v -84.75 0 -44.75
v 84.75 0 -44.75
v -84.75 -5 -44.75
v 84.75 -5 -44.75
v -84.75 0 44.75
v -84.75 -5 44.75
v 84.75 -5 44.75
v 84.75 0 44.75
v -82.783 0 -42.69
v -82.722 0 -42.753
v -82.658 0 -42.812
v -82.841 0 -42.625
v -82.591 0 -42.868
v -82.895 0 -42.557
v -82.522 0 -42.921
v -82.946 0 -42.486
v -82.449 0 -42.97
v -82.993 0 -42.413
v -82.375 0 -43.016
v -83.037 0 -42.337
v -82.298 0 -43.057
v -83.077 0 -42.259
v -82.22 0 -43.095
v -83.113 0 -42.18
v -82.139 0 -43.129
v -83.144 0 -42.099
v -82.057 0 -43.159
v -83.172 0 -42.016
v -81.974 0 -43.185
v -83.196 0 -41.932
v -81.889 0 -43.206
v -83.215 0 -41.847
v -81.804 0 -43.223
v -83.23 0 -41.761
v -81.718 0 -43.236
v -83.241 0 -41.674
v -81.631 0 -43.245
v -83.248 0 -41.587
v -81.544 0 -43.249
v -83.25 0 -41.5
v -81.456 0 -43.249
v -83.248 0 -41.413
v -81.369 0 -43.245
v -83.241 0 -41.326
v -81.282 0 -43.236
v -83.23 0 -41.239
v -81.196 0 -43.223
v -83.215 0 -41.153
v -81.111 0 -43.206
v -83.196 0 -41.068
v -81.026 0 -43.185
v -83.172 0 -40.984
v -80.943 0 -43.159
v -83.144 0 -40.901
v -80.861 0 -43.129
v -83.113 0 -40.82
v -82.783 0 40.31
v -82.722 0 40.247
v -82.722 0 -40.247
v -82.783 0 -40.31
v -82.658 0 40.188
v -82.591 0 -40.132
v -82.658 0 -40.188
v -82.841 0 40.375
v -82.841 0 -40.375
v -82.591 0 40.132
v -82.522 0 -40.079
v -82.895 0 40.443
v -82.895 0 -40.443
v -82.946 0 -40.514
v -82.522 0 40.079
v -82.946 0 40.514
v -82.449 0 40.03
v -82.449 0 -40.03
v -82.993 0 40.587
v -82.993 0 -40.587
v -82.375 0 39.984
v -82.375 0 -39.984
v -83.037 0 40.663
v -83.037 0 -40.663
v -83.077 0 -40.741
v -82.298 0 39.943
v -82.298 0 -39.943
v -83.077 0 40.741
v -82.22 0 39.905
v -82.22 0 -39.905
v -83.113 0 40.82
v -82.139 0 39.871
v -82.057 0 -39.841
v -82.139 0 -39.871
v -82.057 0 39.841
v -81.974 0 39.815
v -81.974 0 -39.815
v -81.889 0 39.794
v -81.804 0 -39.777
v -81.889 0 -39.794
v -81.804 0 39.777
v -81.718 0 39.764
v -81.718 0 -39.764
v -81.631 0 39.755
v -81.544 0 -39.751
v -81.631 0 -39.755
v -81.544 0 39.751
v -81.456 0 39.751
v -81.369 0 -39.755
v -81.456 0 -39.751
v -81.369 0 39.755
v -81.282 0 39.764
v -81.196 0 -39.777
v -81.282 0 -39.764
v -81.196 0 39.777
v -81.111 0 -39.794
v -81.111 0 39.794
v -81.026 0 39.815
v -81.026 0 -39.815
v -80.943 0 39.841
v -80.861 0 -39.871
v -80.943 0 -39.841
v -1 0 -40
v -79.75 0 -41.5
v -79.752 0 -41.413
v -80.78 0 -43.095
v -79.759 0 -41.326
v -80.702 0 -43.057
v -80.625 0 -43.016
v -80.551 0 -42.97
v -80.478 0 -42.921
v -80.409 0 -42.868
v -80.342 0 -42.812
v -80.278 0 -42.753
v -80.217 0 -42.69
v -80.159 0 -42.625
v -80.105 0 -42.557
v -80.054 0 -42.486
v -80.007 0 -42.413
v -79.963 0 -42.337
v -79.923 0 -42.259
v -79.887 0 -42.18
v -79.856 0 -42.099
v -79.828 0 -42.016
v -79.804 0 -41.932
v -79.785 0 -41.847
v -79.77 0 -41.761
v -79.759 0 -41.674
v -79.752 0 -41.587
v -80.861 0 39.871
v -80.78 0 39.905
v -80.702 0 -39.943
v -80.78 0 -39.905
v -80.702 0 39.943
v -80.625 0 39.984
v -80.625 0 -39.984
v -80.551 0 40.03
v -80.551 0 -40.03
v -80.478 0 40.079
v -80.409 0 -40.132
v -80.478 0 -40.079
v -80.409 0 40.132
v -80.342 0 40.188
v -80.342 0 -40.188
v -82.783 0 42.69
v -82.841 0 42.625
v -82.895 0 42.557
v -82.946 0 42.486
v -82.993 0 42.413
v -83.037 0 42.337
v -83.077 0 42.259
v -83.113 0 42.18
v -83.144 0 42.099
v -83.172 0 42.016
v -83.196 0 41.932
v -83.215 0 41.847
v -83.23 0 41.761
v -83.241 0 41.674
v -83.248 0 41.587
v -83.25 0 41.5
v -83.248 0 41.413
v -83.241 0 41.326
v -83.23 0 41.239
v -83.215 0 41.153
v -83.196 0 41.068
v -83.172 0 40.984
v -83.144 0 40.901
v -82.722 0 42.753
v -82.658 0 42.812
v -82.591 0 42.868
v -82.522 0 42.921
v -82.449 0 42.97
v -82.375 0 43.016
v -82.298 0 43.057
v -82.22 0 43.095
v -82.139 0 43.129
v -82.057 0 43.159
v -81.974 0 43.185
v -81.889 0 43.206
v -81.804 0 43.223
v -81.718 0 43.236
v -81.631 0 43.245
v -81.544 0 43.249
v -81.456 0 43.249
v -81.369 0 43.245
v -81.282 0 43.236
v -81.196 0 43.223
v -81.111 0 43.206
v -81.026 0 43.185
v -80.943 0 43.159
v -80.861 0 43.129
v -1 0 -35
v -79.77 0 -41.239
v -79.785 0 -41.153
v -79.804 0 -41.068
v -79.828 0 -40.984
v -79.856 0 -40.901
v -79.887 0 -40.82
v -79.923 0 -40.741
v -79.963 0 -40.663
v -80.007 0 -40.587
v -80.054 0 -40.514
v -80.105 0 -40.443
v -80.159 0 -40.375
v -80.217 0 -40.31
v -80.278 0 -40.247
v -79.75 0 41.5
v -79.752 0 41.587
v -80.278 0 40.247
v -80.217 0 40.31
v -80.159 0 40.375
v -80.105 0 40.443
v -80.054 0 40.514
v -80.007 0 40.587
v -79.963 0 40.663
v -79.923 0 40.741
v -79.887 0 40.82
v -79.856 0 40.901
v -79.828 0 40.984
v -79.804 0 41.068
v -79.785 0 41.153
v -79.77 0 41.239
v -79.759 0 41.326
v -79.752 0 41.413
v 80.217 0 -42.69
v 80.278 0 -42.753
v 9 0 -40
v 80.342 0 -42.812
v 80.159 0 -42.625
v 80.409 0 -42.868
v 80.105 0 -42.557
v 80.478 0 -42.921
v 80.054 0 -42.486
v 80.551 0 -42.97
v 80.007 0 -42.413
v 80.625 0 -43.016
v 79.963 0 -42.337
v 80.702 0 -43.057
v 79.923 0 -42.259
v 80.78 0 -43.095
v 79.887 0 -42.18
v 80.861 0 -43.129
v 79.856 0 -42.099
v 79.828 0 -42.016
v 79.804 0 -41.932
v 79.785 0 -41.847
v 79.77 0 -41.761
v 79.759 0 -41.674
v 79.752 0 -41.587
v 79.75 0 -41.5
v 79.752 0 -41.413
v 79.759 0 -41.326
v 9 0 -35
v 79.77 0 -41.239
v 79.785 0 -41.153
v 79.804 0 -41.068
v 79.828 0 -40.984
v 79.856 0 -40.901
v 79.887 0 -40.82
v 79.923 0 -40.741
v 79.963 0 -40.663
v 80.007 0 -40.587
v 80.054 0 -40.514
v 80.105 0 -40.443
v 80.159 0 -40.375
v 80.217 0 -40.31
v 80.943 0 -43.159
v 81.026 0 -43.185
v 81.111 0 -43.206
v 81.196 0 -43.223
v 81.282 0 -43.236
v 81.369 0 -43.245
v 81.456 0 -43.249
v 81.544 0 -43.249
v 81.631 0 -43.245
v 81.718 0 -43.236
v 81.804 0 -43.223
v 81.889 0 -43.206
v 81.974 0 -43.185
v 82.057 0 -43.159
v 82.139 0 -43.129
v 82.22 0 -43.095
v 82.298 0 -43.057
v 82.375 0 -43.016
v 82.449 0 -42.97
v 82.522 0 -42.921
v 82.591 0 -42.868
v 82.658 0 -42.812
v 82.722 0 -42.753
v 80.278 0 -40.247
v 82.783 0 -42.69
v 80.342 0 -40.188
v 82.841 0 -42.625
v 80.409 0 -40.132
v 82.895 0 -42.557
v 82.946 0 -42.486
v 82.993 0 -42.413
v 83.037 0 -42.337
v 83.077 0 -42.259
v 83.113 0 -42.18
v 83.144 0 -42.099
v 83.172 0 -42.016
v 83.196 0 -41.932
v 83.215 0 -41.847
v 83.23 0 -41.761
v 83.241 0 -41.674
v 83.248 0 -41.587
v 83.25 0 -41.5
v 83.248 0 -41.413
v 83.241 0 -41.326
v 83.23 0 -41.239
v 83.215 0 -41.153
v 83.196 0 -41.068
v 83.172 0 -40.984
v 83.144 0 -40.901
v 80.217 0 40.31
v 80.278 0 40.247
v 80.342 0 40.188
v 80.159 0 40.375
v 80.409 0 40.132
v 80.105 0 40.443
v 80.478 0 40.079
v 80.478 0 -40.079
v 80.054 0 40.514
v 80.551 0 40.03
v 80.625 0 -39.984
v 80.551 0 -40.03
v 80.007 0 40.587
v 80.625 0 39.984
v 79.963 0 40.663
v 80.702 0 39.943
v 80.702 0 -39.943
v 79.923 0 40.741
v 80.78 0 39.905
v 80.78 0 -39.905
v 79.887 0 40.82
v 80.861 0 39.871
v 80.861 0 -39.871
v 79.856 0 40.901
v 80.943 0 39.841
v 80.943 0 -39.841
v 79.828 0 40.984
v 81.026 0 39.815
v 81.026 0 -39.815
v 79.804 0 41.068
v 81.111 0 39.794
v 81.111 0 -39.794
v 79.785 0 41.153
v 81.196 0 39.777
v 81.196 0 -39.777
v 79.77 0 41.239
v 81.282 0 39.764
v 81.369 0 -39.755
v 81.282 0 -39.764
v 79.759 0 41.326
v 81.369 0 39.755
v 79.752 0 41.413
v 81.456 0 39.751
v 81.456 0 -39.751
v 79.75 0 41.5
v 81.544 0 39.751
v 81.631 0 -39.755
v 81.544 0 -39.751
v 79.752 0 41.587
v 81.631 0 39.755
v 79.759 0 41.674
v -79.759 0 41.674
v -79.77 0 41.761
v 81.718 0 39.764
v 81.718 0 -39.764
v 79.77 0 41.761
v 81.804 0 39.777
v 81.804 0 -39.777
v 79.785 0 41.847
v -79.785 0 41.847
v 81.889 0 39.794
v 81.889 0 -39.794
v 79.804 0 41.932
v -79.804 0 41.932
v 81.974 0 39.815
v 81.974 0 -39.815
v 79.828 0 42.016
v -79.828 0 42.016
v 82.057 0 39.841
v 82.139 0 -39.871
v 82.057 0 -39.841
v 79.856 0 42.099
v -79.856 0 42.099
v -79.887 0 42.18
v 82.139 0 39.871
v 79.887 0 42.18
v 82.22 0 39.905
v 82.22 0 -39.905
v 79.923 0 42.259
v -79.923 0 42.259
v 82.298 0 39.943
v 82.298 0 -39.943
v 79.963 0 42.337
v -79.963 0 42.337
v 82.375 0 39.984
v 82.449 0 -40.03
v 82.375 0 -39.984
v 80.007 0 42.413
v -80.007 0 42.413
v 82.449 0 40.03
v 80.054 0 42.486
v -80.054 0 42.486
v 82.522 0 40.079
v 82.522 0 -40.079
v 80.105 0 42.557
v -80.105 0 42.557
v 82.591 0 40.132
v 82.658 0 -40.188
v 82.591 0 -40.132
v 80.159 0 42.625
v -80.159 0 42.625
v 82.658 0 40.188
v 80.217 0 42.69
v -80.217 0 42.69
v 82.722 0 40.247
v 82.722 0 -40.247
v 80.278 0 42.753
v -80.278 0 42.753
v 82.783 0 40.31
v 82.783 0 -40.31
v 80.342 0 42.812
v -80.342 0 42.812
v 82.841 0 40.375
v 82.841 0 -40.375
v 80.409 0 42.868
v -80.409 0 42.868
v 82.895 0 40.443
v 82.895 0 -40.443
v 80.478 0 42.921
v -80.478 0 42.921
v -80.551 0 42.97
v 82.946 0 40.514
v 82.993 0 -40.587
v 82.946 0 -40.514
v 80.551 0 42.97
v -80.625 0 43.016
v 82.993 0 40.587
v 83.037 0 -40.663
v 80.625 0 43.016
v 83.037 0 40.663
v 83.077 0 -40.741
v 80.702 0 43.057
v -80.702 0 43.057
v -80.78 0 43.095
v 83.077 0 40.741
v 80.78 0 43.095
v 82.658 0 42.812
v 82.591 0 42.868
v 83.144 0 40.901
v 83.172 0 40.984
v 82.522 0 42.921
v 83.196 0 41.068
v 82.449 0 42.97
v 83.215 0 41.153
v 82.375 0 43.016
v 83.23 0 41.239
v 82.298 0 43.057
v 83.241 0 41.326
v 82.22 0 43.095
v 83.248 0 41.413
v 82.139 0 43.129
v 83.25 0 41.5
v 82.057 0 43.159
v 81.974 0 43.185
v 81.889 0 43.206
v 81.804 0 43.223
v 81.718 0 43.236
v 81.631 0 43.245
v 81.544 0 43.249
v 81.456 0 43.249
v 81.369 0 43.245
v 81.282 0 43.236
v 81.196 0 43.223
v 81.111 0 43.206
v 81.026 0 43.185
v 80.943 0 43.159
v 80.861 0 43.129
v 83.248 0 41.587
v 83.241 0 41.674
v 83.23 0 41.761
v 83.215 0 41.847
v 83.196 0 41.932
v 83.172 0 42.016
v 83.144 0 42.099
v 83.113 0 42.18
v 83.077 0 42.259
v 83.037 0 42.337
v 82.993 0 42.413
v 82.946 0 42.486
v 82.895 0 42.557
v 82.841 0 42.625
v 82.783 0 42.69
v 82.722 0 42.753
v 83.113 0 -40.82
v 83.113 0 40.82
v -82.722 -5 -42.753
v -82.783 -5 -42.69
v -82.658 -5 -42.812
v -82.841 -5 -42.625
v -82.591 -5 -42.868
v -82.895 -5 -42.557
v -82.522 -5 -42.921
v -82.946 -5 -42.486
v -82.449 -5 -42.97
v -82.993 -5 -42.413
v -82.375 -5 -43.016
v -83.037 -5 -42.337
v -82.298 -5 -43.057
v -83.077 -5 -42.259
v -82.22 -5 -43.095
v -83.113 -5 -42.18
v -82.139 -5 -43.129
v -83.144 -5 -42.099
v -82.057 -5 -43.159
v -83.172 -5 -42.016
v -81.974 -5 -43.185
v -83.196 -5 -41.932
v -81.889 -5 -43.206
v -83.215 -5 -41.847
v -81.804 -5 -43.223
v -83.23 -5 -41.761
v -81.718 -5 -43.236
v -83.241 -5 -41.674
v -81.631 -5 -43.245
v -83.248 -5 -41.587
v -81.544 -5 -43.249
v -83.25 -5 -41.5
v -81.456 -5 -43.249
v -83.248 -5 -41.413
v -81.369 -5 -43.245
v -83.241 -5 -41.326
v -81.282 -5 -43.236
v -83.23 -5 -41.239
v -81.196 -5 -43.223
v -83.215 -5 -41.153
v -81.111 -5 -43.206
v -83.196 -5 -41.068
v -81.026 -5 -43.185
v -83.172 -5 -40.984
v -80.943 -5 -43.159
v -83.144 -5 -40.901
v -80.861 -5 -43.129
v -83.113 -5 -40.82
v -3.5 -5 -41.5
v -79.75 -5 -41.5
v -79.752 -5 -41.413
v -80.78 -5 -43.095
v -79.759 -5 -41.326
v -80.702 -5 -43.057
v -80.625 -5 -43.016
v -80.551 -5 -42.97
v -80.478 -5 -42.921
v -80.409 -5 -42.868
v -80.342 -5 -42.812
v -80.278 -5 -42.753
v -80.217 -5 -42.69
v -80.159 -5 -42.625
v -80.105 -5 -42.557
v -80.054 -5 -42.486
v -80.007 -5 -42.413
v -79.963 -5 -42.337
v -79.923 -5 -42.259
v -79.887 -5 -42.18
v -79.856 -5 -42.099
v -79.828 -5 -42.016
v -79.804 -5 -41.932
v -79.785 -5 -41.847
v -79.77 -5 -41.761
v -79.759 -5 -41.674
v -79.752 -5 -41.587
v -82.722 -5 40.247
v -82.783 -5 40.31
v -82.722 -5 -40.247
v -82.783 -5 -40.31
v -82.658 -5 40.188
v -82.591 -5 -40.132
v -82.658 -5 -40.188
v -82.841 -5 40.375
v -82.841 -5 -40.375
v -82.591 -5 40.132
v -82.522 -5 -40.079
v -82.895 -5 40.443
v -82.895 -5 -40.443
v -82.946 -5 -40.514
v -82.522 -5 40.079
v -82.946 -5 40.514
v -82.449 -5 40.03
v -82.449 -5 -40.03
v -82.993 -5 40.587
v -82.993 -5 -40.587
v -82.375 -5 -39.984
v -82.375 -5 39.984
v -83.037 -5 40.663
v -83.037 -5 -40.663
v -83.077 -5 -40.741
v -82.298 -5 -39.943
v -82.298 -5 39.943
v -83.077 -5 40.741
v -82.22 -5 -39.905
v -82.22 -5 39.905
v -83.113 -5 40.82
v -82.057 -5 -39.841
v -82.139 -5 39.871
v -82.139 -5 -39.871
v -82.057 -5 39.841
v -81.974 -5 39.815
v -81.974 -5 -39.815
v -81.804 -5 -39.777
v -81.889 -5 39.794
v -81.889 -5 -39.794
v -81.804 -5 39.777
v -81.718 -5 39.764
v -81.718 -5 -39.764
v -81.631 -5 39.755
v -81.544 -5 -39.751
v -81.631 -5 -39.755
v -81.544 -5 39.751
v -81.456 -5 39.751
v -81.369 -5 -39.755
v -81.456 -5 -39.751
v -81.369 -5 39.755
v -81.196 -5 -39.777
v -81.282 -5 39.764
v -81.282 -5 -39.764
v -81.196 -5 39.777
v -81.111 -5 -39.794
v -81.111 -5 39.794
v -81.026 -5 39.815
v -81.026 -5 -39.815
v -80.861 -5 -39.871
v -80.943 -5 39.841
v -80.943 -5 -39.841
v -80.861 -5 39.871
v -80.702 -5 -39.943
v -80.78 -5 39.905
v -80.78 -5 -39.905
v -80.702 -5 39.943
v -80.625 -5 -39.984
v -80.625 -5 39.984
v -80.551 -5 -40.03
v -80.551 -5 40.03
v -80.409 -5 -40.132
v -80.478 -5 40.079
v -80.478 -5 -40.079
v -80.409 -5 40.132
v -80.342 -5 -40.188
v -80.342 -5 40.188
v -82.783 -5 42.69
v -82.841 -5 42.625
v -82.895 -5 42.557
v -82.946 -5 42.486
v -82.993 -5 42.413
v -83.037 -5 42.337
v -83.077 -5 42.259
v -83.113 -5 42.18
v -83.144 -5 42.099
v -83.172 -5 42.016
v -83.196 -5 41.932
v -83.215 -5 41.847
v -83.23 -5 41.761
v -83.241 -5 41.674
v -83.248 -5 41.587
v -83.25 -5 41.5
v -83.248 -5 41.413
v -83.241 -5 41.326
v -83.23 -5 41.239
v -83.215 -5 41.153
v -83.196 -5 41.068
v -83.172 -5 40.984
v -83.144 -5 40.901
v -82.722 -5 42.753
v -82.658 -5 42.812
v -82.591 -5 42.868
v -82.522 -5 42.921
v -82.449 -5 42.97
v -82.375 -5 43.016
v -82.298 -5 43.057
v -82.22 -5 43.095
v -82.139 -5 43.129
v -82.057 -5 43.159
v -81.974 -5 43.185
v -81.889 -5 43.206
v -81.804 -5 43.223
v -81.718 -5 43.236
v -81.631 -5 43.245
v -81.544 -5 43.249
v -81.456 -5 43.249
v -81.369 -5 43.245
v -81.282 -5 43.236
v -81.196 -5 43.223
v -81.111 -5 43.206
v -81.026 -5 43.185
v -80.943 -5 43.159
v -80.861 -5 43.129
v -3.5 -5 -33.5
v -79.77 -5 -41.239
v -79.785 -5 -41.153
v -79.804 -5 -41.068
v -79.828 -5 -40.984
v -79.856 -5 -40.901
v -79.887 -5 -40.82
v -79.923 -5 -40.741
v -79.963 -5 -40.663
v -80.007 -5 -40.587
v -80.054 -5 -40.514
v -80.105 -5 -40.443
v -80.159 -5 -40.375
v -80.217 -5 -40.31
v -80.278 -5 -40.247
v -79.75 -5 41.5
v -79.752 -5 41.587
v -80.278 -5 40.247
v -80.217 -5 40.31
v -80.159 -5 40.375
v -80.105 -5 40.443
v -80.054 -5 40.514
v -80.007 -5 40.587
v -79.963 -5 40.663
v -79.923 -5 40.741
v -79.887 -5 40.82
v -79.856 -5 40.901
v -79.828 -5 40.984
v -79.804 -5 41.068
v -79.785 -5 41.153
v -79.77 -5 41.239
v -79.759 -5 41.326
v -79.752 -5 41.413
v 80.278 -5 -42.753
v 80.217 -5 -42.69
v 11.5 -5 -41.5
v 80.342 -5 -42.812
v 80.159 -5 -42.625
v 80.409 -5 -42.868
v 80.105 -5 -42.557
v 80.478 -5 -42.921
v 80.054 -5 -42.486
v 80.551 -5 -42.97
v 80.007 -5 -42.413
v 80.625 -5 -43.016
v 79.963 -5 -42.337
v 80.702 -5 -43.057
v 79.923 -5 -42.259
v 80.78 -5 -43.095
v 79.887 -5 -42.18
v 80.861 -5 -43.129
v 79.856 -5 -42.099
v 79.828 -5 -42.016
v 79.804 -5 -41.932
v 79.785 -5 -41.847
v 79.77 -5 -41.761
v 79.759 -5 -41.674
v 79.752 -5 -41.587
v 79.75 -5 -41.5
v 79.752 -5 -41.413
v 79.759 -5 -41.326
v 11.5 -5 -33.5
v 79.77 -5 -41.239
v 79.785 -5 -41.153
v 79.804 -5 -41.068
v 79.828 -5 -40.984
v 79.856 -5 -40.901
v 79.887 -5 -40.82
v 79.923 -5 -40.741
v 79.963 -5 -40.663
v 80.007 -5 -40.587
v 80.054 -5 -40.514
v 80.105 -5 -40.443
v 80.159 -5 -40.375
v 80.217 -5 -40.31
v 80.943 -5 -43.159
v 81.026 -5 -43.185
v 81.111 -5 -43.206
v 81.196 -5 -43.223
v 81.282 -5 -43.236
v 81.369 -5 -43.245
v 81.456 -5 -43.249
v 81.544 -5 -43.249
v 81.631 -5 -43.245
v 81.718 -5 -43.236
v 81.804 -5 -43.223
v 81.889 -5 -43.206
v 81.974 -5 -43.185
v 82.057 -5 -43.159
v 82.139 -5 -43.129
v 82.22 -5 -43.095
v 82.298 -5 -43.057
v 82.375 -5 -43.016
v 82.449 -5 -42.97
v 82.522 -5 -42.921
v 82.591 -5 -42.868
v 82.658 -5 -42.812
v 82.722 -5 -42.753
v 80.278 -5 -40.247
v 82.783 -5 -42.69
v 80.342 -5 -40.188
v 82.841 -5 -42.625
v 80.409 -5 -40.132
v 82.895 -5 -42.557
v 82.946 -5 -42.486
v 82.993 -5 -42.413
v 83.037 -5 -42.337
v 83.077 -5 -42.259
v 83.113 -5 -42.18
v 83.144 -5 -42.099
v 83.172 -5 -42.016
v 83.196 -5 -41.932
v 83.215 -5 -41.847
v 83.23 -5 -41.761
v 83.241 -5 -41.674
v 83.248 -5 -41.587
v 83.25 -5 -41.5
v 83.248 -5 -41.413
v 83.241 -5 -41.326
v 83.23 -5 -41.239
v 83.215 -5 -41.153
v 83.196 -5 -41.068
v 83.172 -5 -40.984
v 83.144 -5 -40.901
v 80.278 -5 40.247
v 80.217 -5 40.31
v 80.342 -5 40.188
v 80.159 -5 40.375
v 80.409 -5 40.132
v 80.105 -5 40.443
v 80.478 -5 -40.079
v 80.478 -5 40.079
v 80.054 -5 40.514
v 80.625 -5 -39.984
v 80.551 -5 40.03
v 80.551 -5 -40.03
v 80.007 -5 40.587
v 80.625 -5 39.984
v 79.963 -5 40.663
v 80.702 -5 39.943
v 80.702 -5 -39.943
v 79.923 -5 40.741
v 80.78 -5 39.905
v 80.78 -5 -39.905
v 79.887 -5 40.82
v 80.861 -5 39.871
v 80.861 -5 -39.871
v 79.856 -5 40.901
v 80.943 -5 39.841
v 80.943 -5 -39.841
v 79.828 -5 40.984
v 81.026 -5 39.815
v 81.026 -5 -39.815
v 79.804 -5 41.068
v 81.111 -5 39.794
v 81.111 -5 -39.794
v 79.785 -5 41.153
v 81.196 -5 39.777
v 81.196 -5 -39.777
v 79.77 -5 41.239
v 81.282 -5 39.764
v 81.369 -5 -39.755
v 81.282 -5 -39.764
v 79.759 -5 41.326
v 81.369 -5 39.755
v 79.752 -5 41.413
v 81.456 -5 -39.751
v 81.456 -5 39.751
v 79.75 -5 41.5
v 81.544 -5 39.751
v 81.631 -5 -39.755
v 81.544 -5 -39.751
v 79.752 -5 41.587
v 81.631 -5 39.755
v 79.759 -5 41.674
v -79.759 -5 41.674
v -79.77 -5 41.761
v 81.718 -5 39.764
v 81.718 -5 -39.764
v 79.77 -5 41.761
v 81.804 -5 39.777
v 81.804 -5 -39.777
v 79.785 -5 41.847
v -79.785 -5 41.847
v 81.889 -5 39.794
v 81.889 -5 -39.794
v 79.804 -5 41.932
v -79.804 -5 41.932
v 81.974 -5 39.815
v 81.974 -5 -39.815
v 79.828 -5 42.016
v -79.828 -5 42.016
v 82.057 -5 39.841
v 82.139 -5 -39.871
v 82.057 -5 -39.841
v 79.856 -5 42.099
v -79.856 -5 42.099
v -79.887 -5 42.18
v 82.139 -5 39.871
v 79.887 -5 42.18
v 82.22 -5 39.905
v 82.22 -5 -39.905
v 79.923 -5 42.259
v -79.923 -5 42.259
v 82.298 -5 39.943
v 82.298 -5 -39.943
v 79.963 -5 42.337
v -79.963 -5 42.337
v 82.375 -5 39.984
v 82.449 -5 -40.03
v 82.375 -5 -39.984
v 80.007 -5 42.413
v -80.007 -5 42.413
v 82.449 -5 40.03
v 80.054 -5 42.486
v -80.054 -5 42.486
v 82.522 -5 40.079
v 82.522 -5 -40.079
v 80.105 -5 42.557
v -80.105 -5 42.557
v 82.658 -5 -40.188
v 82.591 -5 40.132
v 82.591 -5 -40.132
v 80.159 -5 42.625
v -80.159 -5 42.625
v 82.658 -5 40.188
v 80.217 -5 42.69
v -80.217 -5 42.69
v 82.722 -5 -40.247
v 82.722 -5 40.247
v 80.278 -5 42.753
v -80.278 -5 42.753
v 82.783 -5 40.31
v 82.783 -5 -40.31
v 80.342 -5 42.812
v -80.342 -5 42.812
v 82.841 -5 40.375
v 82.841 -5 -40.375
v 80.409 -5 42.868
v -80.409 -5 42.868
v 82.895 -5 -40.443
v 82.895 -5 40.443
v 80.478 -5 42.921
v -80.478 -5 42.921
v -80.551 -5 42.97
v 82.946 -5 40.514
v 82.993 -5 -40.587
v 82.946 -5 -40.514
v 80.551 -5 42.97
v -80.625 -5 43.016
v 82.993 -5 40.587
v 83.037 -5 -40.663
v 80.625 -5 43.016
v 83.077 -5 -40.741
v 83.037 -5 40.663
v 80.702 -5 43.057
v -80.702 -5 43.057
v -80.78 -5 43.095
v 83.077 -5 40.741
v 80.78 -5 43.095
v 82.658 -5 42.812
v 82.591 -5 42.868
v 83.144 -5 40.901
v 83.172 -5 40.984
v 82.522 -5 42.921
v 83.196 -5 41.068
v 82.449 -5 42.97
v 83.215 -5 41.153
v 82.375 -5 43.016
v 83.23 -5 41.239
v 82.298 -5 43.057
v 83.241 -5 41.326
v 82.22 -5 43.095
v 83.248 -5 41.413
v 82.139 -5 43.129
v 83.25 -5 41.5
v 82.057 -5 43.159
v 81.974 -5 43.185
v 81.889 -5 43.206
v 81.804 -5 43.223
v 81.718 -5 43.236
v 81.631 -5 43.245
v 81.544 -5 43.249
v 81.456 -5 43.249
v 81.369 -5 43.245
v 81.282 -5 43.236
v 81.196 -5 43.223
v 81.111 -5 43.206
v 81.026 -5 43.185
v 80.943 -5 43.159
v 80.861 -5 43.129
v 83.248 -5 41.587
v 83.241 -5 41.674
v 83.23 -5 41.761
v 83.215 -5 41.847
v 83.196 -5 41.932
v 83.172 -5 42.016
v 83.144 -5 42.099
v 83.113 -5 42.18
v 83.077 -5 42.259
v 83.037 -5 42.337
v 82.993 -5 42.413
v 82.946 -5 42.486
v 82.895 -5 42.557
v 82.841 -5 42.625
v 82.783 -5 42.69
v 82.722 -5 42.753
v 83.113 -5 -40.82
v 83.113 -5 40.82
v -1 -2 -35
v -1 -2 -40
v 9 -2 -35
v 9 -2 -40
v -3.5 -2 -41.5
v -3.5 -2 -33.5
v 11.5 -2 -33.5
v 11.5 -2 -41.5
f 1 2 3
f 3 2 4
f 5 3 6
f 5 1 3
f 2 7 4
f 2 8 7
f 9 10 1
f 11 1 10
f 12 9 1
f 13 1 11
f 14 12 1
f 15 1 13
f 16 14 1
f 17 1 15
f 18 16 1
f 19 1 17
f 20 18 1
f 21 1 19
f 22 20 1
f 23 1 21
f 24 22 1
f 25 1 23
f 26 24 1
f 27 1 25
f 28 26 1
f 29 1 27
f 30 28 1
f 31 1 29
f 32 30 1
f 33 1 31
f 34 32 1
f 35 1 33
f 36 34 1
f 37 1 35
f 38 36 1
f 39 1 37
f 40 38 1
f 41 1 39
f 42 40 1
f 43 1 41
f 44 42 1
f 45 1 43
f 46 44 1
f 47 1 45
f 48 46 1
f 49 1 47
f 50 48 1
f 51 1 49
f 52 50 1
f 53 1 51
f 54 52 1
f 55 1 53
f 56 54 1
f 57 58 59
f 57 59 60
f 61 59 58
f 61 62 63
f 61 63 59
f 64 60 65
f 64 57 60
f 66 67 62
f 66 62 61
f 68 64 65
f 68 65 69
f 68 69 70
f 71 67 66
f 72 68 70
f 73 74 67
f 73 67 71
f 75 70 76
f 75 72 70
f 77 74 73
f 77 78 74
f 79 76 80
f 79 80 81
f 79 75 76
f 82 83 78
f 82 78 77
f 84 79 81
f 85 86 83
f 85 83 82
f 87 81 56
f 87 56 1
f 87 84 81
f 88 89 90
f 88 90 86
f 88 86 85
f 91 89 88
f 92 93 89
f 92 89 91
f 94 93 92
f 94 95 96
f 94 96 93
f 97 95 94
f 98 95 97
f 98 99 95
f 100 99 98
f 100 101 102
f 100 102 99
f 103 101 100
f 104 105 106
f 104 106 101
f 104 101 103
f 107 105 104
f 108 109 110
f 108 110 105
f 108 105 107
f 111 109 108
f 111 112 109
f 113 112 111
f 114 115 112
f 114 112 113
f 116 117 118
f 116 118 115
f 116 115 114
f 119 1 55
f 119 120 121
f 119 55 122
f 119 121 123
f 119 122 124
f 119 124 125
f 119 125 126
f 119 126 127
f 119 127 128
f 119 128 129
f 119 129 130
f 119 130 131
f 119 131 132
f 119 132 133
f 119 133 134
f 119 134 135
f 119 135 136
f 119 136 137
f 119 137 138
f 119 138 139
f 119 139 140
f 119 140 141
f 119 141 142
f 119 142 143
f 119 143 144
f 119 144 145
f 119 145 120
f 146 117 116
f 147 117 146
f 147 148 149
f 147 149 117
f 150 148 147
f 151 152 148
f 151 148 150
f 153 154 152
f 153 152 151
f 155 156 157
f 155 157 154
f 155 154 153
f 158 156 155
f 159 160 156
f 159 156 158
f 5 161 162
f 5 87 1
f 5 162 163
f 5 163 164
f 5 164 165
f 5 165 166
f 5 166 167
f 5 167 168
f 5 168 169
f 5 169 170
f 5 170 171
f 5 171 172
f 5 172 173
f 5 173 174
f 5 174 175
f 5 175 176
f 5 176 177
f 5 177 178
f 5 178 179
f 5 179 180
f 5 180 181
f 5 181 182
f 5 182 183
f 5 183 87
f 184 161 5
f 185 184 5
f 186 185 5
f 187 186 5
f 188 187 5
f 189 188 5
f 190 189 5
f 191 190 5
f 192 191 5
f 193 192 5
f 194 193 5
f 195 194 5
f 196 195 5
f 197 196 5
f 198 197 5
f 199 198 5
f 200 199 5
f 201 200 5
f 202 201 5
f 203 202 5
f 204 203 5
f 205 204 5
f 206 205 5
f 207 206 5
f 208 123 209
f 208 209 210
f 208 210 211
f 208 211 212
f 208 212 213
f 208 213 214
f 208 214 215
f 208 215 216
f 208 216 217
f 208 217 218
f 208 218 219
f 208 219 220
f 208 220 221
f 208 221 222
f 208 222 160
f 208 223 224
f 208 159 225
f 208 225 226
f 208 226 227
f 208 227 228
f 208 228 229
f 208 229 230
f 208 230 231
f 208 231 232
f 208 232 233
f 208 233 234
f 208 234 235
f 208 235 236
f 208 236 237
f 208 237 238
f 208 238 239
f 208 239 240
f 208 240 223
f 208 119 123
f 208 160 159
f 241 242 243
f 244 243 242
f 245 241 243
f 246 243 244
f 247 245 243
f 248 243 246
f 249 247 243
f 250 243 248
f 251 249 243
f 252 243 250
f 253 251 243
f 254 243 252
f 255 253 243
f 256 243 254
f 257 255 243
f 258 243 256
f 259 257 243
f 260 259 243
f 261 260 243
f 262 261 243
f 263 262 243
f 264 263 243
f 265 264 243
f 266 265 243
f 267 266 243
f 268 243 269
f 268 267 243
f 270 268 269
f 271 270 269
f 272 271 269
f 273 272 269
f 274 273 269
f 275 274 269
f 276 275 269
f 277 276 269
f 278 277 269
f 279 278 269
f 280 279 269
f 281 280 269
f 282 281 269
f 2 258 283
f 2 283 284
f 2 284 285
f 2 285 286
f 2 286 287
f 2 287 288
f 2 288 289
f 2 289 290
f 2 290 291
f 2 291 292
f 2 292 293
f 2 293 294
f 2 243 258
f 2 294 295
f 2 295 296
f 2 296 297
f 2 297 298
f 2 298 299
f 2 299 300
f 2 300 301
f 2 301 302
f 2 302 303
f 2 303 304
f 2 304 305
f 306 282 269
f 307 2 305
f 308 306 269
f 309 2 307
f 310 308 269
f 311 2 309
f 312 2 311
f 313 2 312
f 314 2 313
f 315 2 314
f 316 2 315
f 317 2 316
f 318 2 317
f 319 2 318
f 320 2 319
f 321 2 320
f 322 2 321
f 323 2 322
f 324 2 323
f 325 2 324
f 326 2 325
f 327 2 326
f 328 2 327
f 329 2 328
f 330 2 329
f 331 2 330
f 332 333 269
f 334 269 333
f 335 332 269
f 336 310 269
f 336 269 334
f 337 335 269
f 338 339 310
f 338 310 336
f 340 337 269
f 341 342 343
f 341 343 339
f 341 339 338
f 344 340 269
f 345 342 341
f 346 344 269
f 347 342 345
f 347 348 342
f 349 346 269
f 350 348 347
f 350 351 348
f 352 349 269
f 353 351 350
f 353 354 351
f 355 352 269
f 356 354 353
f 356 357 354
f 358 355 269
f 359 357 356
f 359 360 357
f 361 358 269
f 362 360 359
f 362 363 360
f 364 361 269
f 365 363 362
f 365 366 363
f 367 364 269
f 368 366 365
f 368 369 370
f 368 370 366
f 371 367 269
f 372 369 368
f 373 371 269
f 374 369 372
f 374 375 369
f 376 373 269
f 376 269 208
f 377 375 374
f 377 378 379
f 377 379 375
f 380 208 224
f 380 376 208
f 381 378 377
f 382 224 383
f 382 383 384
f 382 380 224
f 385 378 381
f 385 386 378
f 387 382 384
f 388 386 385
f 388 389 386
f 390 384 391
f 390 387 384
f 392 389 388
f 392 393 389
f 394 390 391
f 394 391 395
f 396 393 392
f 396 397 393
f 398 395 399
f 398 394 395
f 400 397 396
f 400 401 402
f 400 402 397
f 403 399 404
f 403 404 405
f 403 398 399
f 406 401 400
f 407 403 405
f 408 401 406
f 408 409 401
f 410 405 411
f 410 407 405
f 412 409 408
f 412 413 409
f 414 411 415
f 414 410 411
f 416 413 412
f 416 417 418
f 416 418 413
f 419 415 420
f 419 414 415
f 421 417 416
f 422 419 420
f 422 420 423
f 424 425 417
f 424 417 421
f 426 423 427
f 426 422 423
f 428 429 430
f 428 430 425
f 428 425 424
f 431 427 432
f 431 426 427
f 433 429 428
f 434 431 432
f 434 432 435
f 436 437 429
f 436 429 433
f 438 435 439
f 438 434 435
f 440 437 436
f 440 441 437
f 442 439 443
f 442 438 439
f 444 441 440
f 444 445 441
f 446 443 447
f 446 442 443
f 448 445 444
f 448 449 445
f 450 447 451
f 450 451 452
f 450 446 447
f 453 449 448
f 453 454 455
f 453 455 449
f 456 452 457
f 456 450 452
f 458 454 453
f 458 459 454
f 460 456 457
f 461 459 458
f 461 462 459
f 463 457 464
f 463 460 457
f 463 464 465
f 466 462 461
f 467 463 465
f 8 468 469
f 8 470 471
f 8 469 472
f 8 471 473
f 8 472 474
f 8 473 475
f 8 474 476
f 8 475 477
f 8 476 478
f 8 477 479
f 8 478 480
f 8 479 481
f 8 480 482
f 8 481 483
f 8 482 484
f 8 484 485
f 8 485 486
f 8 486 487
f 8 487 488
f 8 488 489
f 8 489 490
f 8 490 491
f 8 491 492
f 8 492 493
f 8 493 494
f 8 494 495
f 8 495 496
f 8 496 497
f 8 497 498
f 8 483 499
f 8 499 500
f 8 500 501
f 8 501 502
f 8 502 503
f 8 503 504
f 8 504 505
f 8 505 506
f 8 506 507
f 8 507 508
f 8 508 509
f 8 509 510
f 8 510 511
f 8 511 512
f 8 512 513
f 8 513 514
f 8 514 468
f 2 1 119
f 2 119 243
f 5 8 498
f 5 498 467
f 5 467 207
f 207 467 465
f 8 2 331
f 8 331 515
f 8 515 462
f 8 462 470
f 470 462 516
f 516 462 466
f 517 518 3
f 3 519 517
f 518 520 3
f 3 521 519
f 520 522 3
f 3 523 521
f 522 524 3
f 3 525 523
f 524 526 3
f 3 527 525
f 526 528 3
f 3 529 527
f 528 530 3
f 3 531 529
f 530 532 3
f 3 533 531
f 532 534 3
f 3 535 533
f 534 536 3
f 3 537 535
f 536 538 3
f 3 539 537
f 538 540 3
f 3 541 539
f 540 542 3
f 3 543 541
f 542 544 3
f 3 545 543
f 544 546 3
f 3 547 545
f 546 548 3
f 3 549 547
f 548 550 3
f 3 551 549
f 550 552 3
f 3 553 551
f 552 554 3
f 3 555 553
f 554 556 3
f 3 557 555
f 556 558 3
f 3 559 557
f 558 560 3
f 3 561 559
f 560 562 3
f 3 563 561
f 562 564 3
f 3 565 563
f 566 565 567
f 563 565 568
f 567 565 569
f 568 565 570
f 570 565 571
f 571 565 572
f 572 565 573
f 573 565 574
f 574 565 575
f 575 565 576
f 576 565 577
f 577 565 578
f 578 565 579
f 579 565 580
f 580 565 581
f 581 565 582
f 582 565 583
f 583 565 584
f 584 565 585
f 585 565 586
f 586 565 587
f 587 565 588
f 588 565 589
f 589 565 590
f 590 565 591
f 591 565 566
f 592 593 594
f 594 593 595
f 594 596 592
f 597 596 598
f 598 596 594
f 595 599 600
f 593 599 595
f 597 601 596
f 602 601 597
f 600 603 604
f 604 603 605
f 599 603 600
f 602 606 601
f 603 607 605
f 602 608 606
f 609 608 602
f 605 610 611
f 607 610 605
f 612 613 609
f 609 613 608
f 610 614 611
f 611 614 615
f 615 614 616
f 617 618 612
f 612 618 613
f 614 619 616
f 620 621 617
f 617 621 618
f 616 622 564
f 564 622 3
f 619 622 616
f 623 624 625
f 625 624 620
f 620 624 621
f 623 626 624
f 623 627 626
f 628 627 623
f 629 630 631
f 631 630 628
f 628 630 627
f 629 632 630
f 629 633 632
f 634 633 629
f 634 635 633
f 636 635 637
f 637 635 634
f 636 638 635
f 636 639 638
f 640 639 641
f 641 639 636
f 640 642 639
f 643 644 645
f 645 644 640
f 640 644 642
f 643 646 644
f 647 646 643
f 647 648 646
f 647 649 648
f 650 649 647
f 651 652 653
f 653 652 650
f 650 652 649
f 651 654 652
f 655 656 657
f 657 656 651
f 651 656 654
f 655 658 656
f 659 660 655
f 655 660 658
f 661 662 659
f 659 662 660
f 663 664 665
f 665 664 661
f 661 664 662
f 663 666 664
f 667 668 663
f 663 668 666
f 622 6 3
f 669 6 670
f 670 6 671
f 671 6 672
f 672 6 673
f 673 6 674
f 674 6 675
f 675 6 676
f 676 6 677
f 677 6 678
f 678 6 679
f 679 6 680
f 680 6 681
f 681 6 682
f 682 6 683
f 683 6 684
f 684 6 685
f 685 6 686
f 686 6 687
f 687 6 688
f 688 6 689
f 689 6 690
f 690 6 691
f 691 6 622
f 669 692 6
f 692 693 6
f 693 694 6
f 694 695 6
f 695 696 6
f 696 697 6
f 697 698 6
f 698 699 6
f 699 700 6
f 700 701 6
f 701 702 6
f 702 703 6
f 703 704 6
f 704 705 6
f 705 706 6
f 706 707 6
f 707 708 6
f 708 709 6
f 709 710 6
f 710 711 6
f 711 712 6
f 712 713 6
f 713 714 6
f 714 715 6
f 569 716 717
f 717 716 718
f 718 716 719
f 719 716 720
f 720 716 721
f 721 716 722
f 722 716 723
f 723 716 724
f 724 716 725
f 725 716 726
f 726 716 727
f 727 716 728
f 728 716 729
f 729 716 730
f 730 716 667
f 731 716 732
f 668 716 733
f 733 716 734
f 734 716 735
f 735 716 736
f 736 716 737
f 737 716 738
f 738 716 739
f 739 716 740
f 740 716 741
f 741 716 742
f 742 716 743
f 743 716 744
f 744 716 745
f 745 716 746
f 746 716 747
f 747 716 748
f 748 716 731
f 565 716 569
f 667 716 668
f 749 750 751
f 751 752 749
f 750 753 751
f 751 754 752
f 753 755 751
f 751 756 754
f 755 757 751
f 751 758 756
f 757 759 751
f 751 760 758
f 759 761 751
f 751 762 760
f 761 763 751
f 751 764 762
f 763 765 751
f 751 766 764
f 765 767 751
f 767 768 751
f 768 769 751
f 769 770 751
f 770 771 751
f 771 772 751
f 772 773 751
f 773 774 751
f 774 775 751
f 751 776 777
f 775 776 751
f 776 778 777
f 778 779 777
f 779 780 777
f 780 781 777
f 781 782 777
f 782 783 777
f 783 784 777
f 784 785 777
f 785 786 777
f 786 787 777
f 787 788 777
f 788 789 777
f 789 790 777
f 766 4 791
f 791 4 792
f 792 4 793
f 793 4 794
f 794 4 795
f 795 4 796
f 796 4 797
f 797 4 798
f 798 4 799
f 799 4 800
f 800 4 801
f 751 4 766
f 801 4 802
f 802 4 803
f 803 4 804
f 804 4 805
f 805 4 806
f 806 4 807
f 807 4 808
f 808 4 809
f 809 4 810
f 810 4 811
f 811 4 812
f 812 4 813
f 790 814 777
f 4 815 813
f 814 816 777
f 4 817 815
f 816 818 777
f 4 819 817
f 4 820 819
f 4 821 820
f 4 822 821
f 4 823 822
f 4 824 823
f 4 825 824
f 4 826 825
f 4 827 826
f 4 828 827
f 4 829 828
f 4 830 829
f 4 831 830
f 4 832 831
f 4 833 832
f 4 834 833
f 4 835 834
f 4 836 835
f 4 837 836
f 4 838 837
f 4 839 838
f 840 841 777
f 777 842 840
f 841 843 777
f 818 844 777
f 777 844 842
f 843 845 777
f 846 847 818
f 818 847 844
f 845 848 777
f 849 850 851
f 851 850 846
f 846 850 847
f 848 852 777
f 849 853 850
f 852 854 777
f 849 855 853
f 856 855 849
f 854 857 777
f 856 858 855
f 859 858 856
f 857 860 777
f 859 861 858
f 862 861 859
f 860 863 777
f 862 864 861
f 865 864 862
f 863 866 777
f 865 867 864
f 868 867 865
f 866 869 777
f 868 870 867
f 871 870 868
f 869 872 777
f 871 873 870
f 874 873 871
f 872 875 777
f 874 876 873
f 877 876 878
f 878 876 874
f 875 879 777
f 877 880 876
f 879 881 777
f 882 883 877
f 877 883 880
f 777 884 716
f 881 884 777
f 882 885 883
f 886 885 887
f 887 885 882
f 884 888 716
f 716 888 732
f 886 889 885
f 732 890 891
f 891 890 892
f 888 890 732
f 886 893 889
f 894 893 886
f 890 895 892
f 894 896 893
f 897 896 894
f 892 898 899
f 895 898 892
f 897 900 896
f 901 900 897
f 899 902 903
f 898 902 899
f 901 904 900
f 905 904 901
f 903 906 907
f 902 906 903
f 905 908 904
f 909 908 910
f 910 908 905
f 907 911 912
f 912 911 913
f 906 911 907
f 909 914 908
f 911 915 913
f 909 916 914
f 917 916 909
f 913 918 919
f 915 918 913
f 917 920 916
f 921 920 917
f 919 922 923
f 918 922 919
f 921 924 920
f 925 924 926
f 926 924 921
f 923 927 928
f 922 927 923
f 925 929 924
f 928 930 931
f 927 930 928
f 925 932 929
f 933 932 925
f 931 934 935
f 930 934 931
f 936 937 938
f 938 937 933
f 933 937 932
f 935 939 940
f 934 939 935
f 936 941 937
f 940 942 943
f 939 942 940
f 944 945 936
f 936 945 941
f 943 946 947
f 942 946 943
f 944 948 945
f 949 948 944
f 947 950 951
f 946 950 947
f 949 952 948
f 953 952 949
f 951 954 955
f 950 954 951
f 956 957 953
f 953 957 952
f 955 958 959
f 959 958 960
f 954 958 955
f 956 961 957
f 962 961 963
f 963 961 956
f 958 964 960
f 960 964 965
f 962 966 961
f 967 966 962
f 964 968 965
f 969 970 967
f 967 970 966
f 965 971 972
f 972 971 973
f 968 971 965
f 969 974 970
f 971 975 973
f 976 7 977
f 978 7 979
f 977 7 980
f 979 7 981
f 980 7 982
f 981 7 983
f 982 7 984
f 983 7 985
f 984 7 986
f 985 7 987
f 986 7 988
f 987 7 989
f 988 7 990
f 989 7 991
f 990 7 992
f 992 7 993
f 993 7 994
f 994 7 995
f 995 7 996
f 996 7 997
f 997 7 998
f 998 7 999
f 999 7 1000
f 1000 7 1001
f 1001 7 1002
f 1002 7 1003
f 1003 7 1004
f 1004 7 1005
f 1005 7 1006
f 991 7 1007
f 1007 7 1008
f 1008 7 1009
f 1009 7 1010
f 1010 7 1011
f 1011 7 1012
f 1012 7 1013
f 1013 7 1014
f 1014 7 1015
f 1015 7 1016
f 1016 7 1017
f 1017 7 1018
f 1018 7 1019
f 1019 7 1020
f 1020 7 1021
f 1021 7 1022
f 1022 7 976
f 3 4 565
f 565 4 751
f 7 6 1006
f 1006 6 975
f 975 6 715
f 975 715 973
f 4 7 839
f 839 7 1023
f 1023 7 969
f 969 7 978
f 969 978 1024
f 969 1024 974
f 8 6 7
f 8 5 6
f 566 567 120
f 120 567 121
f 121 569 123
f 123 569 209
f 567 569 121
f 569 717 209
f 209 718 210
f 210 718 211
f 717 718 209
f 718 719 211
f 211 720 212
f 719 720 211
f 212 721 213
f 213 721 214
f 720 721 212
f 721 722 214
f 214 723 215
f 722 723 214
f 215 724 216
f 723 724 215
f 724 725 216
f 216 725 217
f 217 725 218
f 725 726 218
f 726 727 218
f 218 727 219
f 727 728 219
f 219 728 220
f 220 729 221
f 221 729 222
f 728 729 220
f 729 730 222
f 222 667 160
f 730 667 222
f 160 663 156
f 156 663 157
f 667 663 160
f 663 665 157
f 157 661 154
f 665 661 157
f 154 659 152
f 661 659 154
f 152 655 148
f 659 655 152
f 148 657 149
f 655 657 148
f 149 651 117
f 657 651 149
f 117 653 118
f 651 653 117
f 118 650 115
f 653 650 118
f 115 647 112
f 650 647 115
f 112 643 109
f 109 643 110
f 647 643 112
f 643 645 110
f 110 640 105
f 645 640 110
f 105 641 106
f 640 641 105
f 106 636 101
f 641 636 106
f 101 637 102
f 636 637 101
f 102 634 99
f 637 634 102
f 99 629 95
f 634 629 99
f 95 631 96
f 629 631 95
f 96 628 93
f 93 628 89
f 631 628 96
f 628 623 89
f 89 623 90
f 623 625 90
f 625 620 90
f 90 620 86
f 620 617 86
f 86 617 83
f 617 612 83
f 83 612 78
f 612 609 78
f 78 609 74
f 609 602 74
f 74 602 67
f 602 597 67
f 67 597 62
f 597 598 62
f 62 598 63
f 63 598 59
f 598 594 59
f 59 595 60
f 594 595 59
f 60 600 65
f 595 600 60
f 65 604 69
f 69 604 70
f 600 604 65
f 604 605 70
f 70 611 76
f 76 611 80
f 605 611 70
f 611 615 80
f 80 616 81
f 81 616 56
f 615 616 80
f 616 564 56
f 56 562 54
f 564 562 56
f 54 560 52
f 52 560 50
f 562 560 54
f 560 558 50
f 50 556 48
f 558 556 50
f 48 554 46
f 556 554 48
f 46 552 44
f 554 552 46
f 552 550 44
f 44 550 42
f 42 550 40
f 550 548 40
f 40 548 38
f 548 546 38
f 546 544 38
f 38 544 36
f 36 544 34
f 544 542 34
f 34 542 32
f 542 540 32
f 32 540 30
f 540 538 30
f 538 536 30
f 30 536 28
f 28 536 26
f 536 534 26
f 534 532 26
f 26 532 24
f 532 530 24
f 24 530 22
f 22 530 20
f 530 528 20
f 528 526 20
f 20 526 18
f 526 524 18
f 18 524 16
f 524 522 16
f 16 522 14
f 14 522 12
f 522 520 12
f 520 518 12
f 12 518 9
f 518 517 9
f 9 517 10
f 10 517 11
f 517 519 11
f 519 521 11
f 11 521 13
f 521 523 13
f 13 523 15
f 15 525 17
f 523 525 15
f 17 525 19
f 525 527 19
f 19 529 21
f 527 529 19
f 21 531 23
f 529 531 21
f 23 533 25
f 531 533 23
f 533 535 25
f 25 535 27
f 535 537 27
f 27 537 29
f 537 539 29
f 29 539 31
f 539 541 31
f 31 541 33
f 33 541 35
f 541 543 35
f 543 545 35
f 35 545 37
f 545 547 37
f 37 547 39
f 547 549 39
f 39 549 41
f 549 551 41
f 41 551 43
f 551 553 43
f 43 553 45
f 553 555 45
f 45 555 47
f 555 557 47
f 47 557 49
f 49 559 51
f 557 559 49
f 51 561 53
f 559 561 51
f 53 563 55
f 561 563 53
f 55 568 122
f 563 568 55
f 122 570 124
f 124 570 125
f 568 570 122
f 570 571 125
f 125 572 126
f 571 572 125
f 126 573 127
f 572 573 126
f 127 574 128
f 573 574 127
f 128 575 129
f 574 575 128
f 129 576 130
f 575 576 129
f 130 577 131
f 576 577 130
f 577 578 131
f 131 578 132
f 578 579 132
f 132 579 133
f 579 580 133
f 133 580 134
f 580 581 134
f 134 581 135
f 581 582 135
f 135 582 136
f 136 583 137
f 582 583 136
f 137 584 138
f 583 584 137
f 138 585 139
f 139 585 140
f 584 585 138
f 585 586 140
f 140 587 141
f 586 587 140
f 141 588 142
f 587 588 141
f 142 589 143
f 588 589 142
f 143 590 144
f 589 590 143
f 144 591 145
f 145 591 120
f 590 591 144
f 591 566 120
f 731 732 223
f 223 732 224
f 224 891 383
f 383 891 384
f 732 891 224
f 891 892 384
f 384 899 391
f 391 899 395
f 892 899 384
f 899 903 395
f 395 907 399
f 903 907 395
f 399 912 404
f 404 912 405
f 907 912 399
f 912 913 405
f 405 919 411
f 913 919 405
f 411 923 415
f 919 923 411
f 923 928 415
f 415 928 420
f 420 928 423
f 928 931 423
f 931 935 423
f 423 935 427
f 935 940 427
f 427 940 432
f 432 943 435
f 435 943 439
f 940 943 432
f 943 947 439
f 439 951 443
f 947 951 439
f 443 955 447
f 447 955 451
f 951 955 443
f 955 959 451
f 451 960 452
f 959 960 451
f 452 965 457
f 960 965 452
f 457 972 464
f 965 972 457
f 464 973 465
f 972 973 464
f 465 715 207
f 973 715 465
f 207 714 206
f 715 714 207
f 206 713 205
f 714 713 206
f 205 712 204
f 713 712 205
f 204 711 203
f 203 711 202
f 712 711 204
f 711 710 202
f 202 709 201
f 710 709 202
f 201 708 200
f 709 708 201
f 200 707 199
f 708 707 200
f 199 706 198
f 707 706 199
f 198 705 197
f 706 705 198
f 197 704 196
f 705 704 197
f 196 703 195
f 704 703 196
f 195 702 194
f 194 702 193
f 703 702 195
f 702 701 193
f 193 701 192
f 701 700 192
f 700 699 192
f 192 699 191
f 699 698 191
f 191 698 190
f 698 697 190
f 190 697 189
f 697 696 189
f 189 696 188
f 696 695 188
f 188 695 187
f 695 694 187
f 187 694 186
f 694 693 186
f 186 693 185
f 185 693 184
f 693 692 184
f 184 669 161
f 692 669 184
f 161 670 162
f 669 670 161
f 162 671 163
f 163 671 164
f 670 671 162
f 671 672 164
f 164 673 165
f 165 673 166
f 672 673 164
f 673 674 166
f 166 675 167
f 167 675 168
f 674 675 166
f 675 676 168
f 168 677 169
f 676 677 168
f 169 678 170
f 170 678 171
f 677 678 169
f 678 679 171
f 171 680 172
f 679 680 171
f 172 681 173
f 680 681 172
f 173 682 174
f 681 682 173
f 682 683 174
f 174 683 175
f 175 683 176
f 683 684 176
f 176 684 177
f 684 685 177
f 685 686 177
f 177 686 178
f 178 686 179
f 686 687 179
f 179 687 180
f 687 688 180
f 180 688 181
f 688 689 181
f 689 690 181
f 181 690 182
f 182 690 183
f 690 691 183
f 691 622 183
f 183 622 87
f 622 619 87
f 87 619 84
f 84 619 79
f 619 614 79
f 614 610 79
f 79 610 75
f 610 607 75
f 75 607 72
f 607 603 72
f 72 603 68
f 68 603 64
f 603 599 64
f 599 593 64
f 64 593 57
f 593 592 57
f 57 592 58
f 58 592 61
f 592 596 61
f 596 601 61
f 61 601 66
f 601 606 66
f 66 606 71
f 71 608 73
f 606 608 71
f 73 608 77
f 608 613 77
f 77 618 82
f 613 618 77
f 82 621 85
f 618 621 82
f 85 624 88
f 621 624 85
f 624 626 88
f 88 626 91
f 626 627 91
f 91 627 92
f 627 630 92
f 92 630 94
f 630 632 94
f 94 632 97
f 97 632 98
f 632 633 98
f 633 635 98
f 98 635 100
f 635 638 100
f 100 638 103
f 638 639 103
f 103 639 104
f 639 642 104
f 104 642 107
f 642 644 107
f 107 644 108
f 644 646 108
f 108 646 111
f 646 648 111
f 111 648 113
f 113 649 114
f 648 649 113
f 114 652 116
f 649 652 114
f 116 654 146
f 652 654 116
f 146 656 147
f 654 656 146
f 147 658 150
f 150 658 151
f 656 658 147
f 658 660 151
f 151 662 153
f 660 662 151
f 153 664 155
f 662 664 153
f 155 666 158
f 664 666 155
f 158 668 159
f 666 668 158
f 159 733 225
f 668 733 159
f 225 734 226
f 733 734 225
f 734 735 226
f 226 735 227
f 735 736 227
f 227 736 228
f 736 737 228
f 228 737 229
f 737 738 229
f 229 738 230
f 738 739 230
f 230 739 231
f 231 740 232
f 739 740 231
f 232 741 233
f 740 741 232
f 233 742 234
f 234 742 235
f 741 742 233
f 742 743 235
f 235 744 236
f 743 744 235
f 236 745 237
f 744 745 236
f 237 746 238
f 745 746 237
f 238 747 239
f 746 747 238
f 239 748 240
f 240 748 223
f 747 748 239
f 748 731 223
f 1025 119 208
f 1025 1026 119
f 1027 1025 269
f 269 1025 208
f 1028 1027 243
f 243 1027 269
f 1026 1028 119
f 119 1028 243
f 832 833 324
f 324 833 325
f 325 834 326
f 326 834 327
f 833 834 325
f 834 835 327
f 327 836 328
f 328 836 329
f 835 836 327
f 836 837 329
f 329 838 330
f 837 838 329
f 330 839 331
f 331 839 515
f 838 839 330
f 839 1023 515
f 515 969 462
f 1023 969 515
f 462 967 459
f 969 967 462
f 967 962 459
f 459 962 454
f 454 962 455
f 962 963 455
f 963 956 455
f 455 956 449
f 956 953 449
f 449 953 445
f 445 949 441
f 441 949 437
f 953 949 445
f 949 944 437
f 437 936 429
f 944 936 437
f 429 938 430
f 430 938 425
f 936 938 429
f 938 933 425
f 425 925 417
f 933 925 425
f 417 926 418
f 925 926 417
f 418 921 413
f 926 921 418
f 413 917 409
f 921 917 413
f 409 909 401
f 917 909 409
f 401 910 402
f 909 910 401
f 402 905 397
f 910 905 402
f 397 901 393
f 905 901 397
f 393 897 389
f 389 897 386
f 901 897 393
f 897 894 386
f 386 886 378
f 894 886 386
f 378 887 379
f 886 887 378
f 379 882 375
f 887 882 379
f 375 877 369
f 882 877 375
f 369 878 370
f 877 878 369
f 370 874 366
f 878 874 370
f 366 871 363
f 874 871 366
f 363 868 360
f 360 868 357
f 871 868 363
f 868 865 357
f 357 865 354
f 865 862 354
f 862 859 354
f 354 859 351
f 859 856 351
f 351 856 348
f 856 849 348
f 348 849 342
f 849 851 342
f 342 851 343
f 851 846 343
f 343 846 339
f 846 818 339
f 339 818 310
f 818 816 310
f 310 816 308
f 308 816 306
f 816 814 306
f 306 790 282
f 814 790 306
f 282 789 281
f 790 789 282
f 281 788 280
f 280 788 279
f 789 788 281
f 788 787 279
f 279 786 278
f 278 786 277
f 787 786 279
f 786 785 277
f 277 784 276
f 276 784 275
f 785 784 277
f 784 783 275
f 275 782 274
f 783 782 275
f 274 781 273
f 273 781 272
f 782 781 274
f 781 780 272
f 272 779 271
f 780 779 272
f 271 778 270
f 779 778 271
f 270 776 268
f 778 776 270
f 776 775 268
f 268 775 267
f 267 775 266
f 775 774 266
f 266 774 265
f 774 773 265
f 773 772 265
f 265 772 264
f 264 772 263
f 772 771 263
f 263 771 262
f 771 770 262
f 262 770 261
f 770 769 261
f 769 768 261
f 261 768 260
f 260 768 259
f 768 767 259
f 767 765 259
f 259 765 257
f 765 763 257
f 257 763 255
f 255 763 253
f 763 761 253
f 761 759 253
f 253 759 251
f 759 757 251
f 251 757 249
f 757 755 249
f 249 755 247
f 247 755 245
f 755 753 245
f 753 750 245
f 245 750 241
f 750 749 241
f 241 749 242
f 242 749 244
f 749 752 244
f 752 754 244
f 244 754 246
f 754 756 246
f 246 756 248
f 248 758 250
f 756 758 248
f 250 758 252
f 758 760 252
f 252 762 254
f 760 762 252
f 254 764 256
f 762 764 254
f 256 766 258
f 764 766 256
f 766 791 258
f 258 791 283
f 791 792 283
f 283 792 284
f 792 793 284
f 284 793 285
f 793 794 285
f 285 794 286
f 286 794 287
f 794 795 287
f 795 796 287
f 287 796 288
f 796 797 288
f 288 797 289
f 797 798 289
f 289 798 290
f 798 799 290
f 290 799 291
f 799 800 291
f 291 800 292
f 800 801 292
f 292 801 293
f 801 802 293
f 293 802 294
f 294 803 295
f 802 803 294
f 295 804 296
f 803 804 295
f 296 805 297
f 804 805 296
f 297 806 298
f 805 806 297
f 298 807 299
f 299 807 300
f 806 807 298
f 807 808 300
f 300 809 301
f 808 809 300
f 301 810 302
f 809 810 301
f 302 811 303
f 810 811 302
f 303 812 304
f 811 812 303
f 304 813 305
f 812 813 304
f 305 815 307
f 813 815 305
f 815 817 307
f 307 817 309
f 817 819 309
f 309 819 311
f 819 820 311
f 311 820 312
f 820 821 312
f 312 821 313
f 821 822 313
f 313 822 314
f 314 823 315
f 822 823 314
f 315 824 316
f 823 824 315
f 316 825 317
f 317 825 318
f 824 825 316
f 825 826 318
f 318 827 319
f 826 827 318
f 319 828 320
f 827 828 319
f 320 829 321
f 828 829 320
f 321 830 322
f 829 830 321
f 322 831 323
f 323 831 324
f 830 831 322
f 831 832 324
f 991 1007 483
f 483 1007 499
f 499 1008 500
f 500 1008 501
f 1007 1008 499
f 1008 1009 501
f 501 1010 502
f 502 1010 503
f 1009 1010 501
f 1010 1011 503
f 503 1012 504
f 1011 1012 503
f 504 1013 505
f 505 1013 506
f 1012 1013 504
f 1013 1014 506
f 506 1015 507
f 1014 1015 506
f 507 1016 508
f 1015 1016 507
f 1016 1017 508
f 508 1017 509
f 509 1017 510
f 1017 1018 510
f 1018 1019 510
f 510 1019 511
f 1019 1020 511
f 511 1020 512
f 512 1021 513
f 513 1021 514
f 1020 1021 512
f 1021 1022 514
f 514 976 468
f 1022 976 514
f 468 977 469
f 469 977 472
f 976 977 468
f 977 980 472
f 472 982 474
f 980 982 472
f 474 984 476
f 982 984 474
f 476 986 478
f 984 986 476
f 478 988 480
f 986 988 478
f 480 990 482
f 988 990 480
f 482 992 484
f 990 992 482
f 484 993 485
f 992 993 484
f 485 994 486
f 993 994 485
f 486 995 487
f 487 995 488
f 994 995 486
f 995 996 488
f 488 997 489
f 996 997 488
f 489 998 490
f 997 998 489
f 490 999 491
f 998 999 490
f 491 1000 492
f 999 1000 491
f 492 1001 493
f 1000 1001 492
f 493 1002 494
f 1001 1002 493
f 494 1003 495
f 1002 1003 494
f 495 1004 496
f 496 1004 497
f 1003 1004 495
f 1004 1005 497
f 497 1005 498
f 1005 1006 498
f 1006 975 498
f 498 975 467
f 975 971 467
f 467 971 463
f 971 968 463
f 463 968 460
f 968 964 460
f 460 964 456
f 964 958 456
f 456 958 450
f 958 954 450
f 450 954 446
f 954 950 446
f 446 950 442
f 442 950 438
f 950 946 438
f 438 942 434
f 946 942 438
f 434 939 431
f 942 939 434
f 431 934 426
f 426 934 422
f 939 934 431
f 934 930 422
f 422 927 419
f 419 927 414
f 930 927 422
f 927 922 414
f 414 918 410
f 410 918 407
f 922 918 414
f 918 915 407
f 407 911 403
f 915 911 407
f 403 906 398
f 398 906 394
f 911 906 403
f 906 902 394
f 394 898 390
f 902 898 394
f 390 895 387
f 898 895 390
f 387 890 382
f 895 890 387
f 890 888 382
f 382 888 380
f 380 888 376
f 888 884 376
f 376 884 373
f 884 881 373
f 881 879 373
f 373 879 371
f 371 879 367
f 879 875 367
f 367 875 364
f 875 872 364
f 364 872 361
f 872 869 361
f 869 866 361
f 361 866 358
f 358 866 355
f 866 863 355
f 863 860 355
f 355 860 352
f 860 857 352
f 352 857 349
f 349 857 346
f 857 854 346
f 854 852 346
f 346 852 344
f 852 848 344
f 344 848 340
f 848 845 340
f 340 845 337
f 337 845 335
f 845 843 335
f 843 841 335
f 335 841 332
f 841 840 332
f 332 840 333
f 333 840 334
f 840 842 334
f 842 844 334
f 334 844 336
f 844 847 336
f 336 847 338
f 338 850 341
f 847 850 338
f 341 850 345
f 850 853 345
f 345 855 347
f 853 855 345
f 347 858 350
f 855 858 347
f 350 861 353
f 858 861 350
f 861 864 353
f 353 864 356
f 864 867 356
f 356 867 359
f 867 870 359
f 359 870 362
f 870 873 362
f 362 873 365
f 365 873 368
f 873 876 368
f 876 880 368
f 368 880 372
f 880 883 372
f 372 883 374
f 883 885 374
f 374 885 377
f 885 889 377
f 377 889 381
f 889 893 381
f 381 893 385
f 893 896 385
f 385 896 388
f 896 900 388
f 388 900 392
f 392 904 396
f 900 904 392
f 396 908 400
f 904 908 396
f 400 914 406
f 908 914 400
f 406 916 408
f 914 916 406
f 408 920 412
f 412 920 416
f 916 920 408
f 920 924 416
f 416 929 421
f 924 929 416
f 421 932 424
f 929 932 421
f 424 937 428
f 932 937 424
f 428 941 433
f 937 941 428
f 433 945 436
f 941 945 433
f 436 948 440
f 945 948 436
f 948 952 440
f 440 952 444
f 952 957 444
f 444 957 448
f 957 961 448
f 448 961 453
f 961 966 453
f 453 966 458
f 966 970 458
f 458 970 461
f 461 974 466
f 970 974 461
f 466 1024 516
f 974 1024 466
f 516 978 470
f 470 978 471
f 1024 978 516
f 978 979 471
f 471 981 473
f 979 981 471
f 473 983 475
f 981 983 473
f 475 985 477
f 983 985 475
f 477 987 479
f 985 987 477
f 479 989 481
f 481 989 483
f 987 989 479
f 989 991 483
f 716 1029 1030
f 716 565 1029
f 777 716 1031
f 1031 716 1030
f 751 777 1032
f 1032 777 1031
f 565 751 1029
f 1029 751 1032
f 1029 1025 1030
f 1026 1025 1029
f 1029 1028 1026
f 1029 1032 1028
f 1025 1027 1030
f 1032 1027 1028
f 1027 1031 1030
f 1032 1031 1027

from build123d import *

# Parameters (mm, degrees)
SKETCH_W        = 169.5
SKETCH_H        = 89.5
PAD_DEPTH       = 5
SKETCH001_R     = 1.75
SKETCH001_W     = 10
SKETCH001_H     = 5
POCKET_DEPTH    = 5
SKETCH002_W     = 15
SKETCH002_H     = 8
POCKET001_DEPTH = 3


with BuildPart() as part:
    # Sketch → Pad (new body)
    with BuildSketch(Plane.XZ):
        Rectangle(SKETCH_W, SKETCH_H)
    extrude(amount=PAD_DEPTH)

    # Sketch001 (on Face6 of Pad) → Pocket (cut)
    with BuildSketch(Plane.XZ.offset(5)):
        with Locations((-81.5, 41.5)):
            Circle(SKETCH001_R)
        with Locations((81.5, 41.5)):
            Circle(SKETCH001_R)
        with Locations((-81.5, -41.5)):
            Circle(SKETCH001_R)
        with Locations((81.5, -41.5)):
            Circle(SKETCH001_R)
        with Locations((4, -37.5)):
            Rectangle(SKETCH001_W, SKETCH001_H)
    extrude(amount=-POCKET_DEPTH, mode=Mode.SUBTRACT)

    # Sketch002 (on Face5 of Pocket) → Pocket001 (cut)
    with BuildSketch(Plane.XZ.offset(5)):
        with Locations((4, -37.5)):
            Rectangle(SKETCH002_W, SKETCH002_H)
    extrude(amount=-POCKET001_DEPTH, mode=Mode.SUBTRACT)


solid = part.part
